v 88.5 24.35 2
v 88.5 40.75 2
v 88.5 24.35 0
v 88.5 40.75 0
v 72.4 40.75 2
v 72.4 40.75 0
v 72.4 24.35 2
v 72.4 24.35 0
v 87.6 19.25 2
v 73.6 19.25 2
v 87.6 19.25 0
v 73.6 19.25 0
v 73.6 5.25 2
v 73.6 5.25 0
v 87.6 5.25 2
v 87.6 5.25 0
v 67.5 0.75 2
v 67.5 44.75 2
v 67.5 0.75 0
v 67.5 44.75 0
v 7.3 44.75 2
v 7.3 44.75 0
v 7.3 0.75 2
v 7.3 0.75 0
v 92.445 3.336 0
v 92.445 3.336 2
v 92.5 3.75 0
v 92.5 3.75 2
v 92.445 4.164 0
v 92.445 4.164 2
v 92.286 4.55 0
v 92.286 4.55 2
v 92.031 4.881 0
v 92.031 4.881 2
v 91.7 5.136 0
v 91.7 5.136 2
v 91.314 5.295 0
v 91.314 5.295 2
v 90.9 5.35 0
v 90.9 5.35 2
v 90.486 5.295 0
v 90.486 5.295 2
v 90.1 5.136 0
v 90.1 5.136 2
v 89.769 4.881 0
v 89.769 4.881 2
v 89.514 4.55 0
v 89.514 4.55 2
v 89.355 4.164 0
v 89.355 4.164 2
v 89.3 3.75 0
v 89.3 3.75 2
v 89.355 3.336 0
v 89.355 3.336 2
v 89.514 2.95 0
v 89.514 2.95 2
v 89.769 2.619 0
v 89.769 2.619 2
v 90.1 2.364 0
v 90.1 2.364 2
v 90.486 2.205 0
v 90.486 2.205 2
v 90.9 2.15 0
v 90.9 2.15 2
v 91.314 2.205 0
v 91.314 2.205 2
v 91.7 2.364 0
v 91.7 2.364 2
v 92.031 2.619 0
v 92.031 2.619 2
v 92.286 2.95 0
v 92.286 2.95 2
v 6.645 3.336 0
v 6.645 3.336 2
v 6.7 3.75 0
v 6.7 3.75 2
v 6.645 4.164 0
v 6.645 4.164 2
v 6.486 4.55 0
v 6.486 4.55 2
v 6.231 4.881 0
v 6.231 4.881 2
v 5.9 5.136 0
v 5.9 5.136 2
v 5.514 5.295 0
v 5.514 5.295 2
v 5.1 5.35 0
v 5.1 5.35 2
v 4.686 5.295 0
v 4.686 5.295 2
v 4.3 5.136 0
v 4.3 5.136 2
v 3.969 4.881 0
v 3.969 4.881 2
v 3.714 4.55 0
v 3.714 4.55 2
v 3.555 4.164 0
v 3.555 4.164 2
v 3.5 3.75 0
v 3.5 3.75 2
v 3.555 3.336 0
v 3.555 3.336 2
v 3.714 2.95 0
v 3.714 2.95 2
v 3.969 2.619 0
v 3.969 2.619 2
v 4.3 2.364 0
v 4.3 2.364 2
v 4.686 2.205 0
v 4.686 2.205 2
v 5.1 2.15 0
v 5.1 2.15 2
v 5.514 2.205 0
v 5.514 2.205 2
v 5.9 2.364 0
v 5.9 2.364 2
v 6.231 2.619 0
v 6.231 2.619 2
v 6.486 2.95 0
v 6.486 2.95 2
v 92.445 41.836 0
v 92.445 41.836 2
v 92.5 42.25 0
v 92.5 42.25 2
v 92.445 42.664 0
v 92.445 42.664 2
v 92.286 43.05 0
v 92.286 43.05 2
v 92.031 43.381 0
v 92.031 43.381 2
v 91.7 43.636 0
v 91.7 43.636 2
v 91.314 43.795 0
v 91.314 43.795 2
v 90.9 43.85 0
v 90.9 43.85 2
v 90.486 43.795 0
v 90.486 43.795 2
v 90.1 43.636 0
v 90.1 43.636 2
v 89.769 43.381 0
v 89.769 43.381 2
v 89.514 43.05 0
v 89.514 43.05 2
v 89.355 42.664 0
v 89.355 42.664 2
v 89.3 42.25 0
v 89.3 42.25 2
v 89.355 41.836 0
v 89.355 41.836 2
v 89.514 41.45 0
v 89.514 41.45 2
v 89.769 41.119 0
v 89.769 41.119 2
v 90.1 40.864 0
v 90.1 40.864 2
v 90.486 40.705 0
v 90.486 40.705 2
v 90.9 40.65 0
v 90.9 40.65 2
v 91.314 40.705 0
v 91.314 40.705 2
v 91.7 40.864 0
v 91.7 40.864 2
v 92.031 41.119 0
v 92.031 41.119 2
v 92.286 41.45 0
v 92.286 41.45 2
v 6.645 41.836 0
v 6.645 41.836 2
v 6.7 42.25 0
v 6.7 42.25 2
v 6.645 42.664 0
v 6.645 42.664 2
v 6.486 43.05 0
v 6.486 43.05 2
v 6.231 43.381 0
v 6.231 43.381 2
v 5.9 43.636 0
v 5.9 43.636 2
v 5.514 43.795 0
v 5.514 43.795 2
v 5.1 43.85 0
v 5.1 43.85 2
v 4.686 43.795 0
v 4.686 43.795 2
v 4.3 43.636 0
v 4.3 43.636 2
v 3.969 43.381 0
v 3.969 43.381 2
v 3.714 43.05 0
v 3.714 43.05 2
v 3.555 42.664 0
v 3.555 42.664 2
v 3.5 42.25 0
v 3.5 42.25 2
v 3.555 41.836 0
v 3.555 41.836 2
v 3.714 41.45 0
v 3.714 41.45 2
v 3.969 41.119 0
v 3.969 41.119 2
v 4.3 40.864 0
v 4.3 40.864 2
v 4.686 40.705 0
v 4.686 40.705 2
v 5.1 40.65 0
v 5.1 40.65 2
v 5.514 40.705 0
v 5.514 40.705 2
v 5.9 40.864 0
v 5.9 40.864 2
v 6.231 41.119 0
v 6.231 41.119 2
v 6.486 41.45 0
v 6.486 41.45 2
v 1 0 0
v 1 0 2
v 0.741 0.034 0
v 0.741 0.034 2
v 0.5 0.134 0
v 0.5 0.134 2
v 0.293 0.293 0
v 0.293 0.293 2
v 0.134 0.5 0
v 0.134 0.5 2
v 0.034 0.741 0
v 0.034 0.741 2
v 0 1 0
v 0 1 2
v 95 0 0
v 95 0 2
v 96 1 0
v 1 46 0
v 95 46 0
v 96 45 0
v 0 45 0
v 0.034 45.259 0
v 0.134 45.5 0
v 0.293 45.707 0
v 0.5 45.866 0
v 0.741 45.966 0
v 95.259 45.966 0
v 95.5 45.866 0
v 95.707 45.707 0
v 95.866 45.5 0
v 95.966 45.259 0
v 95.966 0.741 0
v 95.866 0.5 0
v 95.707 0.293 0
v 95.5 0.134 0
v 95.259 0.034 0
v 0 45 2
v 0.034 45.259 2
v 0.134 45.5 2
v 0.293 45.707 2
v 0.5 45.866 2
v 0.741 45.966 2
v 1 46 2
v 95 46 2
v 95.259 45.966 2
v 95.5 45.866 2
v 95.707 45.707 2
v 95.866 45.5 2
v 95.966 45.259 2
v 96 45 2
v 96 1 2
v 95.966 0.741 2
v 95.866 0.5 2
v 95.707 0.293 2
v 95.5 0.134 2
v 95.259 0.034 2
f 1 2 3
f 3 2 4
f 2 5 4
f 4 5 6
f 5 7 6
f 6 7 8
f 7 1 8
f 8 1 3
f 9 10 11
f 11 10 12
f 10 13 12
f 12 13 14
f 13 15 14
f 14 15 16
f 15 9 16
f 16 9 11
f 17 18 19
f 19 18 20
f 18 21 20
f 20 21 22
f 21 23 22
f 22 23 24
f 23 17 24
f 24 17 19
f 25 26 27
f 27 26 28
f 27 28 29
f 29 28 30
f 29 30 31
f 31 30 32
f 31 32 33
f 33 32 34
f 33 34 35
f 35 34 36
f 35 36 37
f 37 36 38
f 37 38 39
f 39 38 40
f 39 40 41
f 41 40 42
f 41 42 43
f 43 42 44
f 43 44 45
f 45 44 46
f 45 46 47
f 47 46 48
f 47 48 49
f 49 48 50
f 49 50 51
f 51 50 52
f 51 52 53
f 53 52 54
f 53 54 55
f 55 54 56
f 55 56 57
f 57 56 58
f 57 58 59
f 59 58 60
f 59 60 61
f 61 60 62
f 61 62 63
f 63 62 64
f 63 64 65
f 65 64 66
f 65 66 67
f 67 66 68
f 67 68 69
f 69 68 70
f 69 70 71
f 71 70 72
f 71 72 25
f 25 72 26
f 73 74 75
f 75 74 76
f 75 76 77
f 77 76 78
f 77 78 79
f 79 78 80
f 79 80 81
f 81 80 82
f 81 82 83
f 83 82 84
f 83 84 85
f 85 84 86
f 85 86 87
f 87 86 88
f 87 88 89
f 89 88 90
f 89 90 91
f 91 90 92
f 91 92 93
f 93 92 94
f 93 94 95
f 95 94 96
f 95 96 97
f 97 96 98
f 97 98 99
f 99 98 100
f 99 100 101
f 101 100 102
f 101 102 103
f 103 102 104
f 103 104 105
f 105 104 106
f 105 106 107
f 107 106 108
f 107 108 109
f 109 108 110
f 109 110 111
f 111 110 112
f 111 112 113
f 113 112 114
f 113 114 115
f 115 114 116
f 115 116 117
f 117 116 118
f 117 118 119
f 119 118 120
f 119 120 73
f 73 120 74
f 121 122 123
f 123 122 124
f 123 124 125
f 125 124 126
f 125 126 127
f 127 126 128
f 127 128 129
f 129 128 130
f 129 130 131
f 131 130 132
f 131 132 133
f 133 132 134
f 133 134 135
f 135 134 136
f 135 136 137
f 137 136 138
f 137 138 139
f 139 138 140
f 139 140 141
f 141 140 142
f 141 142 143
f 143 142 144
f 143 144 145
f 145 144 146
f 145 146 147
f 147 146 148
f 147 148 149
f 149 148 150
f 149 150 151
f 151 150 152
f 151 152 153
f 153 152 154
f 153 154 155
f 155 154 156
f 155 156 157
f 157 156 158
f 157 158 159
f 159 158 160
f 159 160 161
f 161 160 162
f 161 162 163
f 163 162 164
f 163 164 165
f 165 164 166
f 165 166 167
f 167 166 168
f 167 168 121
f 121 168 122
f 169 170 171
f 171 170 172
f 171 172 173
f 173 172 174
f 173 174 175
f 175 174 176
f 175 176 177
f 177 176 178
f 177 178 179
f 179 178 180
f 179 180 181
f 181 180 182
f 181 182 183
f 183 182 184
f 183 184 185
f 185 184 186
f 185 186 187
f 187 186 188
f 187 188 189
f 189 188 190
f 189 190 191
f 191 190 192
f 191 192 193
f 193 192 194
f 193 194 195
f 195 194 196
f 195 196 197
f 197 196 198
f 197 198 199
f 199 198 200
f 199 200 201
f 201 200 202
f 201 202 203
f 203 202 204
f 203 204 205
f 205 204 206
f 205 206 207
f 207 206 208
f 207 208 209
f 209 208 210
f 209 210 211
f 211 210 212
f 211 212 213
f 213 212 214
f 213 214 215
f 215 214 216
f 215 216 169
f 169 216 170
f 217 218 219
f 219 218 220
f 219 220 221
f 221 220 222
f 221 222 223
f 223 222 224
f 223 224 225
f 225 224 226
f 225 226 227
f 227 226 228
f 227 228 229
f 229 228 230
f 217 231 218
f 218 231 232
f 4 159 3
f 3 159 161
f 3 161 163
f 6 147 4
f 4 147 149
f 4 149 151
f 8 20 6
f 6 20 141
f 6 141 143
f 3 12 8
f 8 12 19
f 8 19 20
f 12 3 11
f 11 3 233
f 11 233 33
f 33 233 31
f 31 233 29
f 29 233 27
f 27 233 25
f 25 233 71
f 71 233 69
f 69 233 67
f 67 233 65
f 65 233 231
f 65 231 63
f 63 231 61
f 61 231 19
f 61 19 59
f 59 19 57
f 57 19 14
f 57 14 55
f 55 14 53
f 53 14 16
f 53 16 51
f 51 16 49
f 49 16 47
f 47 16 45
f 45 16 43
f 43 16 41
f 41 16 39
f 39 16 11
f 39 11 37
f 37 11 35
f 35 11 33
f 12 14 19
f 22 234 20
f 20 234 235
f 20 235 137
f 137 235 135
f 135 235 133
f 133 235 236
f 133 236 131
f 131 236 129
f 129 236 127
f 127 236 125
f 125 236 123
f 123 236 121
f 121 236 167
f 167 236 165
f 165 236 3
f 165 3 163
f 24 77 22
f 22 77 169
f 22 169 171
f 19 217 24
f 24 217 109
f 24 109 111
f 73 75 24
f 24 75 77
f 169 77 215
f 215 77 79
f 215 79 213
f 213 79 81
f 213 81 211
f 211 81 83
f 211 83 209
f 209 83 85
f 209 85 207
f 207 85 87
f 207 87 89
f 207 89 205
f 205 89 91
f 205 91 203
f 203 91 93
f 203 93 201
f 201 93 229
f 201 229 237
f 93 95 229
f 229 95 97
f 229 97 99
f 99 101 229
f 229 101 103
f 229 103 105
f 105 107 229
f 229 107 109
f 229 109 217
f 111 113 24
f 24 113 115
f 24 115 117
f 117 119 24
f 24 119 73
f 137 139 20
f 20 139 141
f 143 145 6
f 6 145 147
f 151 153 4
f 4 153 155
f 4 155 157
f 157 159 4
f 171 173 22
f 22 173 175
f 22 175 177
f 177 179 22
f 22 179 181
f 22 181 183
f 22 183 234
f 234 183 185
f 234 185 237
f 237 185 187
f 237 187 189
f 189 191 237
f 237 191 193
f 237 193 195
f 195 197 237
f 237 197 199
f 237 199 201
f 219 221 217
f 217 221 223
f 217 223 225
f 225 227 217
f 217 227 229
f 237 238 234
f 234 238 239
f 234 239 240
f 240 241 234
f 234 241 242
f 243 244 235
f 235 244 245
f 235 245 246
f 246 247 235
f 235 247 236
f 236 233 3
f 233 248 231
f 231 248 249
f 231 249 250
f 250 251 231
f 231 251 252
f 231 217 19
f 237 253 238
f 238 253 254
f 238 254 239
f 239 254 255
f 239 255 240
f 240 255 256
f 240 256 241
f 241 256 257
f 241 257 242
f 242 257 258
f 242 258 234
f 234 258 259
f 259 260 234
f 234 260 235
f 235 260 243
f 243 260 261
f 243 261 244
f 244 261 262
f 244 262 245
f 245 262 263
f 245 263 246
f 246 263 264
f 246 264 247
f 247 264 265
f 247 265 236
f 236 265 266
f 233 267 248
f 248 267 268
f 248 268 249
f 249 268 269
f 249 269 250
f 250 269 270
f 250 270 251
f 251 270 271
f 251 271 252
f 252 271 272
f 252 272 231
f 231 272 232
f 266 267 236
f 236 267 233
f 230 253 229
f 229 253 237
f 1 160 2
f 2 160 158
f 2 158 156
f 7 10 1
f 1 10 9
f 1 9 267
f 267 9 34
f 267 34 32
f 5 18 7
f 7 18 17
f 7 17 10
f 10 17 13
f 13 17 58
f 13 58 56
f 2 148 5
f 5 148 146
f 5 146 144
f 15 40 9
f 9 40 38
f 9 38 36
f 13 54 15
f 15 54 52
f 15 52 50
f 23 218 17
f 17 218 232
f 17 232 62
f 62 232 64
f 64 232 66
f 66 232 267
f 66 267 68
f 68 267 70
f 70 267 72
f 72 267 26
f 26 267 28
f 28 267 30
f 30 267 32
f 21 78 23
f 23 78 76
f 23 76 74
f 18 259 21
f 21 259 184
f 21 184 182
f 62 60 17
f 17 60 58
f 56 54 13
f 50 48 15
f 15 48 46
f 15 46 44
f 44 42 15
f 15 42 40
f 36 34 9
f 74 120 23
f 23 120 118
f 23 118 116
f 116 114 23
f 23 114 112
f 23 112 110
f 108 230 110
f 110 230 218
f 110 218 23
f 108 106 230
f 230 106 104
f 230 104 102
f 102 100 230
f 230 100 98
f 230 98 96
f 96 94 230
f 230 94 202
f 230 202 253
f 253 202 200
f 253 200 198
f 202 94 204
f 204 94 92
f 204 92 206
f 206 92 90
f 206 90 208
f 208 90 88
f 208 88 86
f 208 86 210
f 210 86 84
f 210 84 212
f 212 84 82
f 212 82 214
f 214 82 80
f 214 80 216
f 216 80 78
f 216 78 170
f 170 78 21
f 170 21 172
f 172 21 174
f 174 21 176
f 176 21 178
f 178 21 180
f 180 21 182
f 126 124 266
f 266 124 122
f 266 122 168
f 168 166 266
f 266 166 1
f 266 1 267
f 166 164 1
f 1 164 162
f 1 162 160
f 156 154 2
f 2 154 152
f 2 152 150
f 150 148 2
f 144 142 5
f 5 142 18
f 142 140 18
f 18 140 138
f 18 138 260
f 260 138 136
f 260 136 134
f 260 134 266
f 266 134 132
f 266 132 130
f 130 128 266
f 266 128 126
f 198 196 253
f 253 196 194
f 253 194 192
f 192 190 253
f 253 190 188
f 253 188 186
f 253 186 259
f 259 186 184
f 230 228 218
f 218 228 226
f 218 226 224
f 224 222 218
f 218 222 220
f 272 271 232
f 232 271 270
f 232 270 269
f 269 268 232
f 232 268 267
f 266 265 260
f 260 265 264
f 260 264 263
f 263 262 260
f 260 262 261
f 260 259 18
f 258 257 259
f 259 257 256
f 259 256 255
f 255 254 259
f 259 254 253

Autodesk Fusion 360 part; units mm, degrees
sketch "Sketch1" plane through (0, 0, 0) normal (0, 0, 1) x (1, 0, 0)
  line L0 (0, 0) -> (96, 0)
  line L1 (96, 0) -> (96, 46)
  line L2 (96, 46) -> (0, 46)
  line L3 (0, 46) -> (0, 0)
  dimension "d1" = 96
  dimension "d2" = 46
extrude "Extrude1" add sketch "Sketch1" along normal blind 2
fillet "Fillet1" radius 1 4 edges at (96, 0, 1) (96, 46, 1) (0, 46, 1) (0, 0, 1)
sketch "Sketch2" plane through (0, 0, 2) normal (0, 0, 1) x (-1, 0, 0)
  arc A0 (0, -1) -> (-1, 0) centre (-1, -1) ccw
  line L0 (-1, 0) -> (-95, 0)
  arc A1 (-95, 0) -> (-96, -1) centre (-95, -1) ccw
  line L1 (-96, -1) -> (-96, -45)
  arc A2 (-96, -45) -> (-95, -46) centre (-95, -45) ccw
  line L2 (-95, -46) -> (-1, -46)
  arc A3 (-1, -46) -> (0, -45) centre (-1, -45) ccw
  line L3 (0, -45) -> (0, -1)
  circle A4 centre (-5.1, -42.25) radius 1.6
  circle A5 centre (-90.9, -42.25) radius 1.6
  circle A6 centre (-90.9, -3.75) radius 1.6
  circle A7 centre (-5.1, -3.75) radius 1.6
  dimension "d7" = 3.2
  dimension "d8" = 3.75
  dimension "d9" = 5.1
  dimension "d10" = 3.2
  dimension "d11" = 3.2
  dimension "d12" = 3.2
  dimension "d13" = 3.75
  dimension "d14" = 5.1
  dimension "d15" = 3.75
  dimension "d16" = 5.1
  dimension "d17" = 5.1
  dimension "d18" = 3.75
extrude "Extrude2" cut sketch "Sketch2" against normal blind 2 contours A4 | A5 | A6 | A7
sketch "Sketch3" plane through (0, 0, 2) normal (0, 0, 1) x (-1, 0, 0)
  circle A0 centre (-90.9, -3.75) radius 1.6
  circle A1 centre (-5.1, -3.75) radius 1.6
  circle A2 centre (-90.9, -42.25) radius 1.6
  circle A3 centre (-5.1, -42.25) radius 1.6
  arc A4 (0, -1) -> (-1, 0) centre (-1, -1) ccw
  line L0 (-1, 0) -> (-95, 0)
  arc A5 (-95, 0) -> (-96, -1) centre (-95, -1) ccw
  line L1 (-96, -1) -> (-96, -45)
  arc A6 (-96, -45) -> (-95, -46) centre (-95, -45) ccw
  line L2 (-95, -46) -> (-1, -46)
  arc A7 (-1, -46) -> (0, -45) centre (-1, -45) ccw
  line L3 (0, -45) -> (0, -1)
  line L4 (-2.5, -46) -> (-2.5, 0) construction
  line L5 (-7.3, -46) -> (-7.3, 0)
  line L6 (-93.5, -46) -> (-93.5, 0)
  line L7 (-88.5, -46) -> (-88.5, 0)
  line L8 (-7.3, -44.75) -> (-67.5, -44.75)
  line L9 (-67.5, -44.75) -> (-67.5, -0.75)
  line L10 (-67.5, -0.75) -> (-7.3, -0.75)
  line L11 (-7.3, -0.75) -> (-7.3, -44.75)
  line L12 (0, -23) -> (-96, -23) construction
  dimension "d21" = 2.6
  dimension "d22" = 4.8
  dimension "d23" = 2.6
  dimension "d24" = 5
  dimension "d26" = 44
  dimension "d27" = 44
  dimension "d29" = 21.75
  dimension "d30" = 22
  dimension "d31" = 4.8
  dimension "d32" = 21
  dimension "d34" = 60.2
extrude "Extrude3" cut sketch "Sketch3" against normal blind 2 contours L5 L8 L9 L10 L11
sketch "Sketch4" plane through (0, 0, 2) normal (0, 0, 1) x (-1, 0, 0)
  line L0 (-67.5, -44.75) -> (-67.5, -0.75)
  line L1 (-67.5, -0.75) -> (-7.3, -0.75)
  line L2 (-7.3, -0.75) -> (-7.3, -44.75)
  line L3 (-7.3, -44.75) -> (-67.5, -44.75)
  circle A0 centre (-90.9, -3.75) radius 1.6
  circle A1 centre (-5.1, -3.75) radius 1.6
  circle A2 centre (-90.9, -42.25) radius 1.6
  circle A3 centre (-5.1, -42.25) radius 1.6
  arc A4 (0, -1) -> (-1, 0) centre (-1, -1) ccw
  line L4 (-1, 0) -> (-95, 0)
  arc A5 (-95, 0) -> (-96, -1) centre (-95, -1) ccw
  line L5 (-96, -1) -> (-96, -45)
  arc A6 (-96, -45) -> (-95, -46) centre (-95, -45) ccw
  line L6 (-95, -46) -> (-1, -46)
  arc A7 (-1, -46) -> (0, -45) centre (-1, -45) ccw
  line L7 (0, -45) -> (0, -1)
  line L8 (-93.5, -46) -> (-93.5, 0)
  line L9 (-88.5, -46) -> (-88.5, 0)
  line L10 (-73.4, -39.75) -> (-87.8, -39.75)
  line L11 (-87.8, -39.75) -> (-87.8, -25.35)
  line L12 (-87.8, -25.35) -> (-73.4, -25.35)
  line L13 (-73.4, -25.35) -> (-73.4, -39.75)
  line L14 (-74.6, -18.25) -> (-86.6, -18.25)
  line L15 (-86.6, -18.25) -> (-86.6, -6.25)
  line L16 (-86.6, -6.25) -> (-74.6, -6.25)
  line L17 (-74.6, -6.25) -> (-74.6, -18.25)
  line L18 (-72.4, -40.75) -> (-88.8, -40.75)
  line L19 (-88.8, -40.75) -> (-88.8, -24.35)
  line L20 (-88.8, -24.35) -> (-72.4, -24.35)
  line L21 (-72.4, -24.35) -> (-72.4, -40.75)
  line L22 (-73.6, -5.25) -> (-73.6, -19.25)
  line L23 (-73.6, -19.25) -> (-87.6, -19.25)
  line L24 (-87.6, -19.25) -> (-87.6, -5.25)
  line L25 (-87.6, -5.25) -> (-73.6, -5.25)
  dimension "d38" = 2.6
  dimension "d39" = 5
  dimension "d40" = 14.4
  dimension "d41" = 14.4
  dimension "d42" = 5.7
  dimension "d44" = 12
  dimension "d45" = 12
  dimension "d46" = 6.9
  dimension "d47" = 7.1
  dimension "d48" = -1
  dimension "d49" = -1
  dimension "d50" = 5
extrude "Extrude4" cut sketch "Sketch4" against normal blind 2 contours L9 L18 L20 L21 | L10 L11 L12 L13 | L14 L15 L16 L17 | L22 L23 L24 L25
sketch "Sketch5" plane through (0, 0, 2) normal (0, 0, 1) x (-1, 0, 0)
  line L0 (-88.5, -40.75) -> (-88.5, -24.35)
  line L1 (-88.5, -24.35) -> (-72.4, -24.35)
  line L2 (-72.4, -24.35) -> (-72.4, -40.75)
  line L3 (-72.4, -40.75) -> (-88.5, -40.75)
  line L4 (-73.6, -19.25) -> (-87.6, -19.25)
  line L5 (-87.6, -19.25) -> (-87.6, -5.25)
  line L6 (-87.6, -5.25) -> (-73.6, -5.25)
  line L7 (-73.6, -5.25) -> (-73.6, -19.25)
  line L8 (-67.5, -44.75) -> (-67.5, -0.75)
  line L9 (-67.5, -0.75) -> (-7.3, -0.75)
  line L10 (-7.3, -0.75) -> (-7.3, -44.75)
  line L11 (-7.3, -44.75) -> (-67.5, -44.75)
  circle A0 centre (-90.9, -3.75) radius 1.6
  circle A1 centre (-5.1, -3.75) radius 1.6
  circle A2 centre (-90.9, -42.25) radius 1.6
  circle A3 centre (-5.1, -42.25) radius 1.6
  arc A4 (0, -1) -> (-1, 0) centre (-1, -1) ccw
  line L12 (-1, 0) -> (-95, 0)
  arc A5 (-95, 0) -> (-96, -1) centre (-95, -1) ccw
  line L13 (-96, -1) -> (-96, -45)
  arc A6 (-96, -45) -> (-95, -46) centre (-95, -45) ccw
  line L14 (-95, -46) -> (-1, -46)
  arc A7 (-1, -46) -> (0, -45) centre (-1, -45) ccw
  line L15 (0, -45) -> (0, -1)
  dimension "d53" = 3.75
  dimension "d54" = 3.75
  dimension "d55" = 3.75
equation "d21 = 1 mm + ( ( 3.2 / 2 ) * 1 mm )"
equation "d29 = ( 43.5 / 2 ) * 1 mm"
equation "d38 = ( 3.2 / 2 ) * 1 mm + 1 mm"
